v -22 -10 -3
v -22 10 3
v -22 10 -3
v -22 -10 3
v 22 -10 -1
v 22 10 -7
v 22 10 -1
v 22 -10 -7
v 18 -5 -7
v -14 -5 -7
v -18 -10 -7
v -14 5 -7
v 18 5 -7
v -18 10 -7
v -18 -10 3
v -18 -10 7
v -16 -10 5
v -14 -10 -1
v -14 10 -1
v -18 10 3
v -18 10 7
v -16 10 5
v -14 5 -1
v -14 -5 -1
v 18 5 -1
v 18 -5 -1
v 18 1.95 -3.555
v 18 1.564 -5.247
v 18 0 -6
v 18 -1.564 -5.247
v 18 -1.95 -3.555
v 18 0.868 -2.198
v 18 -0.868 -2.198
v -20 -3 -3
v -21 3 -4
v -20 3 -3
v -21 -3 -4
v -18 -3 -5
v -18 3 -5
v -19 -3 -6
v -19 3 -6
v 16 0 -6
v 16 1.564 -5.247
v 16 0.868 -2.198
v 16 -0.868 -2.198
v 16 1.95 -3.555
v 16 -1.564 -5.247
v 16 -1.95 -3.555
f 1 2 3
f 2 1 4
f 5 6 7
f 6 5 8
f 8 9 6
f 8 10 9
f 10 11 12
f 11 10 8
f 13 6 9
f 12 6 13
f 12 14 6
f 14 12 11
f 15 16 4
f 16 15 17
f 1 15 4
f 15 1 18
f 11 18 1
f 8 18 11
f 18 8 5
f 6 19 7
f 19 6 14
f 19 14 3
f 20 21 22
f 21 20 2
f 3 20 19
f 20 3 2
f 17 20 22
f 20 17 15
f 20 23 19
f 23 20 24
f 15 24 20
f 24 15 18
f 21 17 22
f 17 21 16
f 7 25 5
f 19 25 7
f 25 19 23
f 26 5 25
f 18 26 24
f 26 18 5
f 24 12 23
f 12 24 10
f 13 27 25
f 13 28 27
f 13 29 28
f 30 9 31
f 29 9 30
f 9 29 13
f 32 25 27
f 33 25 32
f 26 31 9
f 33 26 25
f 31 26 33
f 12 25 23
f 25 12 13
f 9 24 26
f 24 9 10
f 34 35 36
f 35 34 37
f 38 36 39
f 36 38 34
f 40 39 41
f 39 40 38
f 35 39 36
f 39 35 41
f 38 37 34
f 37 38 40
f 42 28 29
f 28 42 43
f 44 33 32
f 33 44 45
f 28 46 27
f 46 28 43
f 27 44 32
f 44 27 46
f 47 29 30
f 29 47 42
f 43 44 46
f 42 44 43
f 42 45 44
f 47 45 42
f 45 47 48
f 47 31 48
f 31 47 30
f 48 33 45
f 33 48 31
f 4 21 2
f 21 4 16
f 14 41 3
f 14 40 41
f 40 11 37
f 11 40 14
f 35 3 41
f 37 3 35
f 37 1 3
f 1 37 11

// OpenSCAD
intersection () {
  union () {
    difference () {
      cube ([44, 20, 14], center=true);
      translate ([-14, 0, 3]) {
        rotate (a=45.0, v=[0, 1, 0]) {
          cube ([5.656854249492381, 20, 5.656854249492381], center=true);
        }
      }
      translate ([-10, 0, 7]) {
        rotate (a=45.0, v=[0, 1, 0]) {
          cube ([11.313708498984761, 20, 11.313708498984761], center=true);
        }
      }
      translate ([4, 0, 3]) {
        cube ([36, 20, 8], center=true);
      }
      translate ([2, 0, -4]) {
        cube ([32, 10, 6], center=true);
      }
      translate ([-20, 0, -5]) {
        rotate (a=45.0, v=[0, 1, 0]) {
          cube ([2.8284271247461903, 6, 2.8284271247461903], center=true);
        }
      }
    }
    translate ([17, 0, -4]) {
      rotate (a=90.0, v=[0, 1, 0]) {
        cylinder (h=2, r=2, center=true);
      }
    }
  }
  union () {
    translate ([-6, 0, 0]) {
      rotate (a=45.0, v=[0, 1, 0]) {
        cube ([26.870057685088806, 20, 26.870057685088806], center=true);
      }
    }
    translate ([8, 0, 0]) {
      cube ([28, 20, 14], center=true);
    }
  }
}
